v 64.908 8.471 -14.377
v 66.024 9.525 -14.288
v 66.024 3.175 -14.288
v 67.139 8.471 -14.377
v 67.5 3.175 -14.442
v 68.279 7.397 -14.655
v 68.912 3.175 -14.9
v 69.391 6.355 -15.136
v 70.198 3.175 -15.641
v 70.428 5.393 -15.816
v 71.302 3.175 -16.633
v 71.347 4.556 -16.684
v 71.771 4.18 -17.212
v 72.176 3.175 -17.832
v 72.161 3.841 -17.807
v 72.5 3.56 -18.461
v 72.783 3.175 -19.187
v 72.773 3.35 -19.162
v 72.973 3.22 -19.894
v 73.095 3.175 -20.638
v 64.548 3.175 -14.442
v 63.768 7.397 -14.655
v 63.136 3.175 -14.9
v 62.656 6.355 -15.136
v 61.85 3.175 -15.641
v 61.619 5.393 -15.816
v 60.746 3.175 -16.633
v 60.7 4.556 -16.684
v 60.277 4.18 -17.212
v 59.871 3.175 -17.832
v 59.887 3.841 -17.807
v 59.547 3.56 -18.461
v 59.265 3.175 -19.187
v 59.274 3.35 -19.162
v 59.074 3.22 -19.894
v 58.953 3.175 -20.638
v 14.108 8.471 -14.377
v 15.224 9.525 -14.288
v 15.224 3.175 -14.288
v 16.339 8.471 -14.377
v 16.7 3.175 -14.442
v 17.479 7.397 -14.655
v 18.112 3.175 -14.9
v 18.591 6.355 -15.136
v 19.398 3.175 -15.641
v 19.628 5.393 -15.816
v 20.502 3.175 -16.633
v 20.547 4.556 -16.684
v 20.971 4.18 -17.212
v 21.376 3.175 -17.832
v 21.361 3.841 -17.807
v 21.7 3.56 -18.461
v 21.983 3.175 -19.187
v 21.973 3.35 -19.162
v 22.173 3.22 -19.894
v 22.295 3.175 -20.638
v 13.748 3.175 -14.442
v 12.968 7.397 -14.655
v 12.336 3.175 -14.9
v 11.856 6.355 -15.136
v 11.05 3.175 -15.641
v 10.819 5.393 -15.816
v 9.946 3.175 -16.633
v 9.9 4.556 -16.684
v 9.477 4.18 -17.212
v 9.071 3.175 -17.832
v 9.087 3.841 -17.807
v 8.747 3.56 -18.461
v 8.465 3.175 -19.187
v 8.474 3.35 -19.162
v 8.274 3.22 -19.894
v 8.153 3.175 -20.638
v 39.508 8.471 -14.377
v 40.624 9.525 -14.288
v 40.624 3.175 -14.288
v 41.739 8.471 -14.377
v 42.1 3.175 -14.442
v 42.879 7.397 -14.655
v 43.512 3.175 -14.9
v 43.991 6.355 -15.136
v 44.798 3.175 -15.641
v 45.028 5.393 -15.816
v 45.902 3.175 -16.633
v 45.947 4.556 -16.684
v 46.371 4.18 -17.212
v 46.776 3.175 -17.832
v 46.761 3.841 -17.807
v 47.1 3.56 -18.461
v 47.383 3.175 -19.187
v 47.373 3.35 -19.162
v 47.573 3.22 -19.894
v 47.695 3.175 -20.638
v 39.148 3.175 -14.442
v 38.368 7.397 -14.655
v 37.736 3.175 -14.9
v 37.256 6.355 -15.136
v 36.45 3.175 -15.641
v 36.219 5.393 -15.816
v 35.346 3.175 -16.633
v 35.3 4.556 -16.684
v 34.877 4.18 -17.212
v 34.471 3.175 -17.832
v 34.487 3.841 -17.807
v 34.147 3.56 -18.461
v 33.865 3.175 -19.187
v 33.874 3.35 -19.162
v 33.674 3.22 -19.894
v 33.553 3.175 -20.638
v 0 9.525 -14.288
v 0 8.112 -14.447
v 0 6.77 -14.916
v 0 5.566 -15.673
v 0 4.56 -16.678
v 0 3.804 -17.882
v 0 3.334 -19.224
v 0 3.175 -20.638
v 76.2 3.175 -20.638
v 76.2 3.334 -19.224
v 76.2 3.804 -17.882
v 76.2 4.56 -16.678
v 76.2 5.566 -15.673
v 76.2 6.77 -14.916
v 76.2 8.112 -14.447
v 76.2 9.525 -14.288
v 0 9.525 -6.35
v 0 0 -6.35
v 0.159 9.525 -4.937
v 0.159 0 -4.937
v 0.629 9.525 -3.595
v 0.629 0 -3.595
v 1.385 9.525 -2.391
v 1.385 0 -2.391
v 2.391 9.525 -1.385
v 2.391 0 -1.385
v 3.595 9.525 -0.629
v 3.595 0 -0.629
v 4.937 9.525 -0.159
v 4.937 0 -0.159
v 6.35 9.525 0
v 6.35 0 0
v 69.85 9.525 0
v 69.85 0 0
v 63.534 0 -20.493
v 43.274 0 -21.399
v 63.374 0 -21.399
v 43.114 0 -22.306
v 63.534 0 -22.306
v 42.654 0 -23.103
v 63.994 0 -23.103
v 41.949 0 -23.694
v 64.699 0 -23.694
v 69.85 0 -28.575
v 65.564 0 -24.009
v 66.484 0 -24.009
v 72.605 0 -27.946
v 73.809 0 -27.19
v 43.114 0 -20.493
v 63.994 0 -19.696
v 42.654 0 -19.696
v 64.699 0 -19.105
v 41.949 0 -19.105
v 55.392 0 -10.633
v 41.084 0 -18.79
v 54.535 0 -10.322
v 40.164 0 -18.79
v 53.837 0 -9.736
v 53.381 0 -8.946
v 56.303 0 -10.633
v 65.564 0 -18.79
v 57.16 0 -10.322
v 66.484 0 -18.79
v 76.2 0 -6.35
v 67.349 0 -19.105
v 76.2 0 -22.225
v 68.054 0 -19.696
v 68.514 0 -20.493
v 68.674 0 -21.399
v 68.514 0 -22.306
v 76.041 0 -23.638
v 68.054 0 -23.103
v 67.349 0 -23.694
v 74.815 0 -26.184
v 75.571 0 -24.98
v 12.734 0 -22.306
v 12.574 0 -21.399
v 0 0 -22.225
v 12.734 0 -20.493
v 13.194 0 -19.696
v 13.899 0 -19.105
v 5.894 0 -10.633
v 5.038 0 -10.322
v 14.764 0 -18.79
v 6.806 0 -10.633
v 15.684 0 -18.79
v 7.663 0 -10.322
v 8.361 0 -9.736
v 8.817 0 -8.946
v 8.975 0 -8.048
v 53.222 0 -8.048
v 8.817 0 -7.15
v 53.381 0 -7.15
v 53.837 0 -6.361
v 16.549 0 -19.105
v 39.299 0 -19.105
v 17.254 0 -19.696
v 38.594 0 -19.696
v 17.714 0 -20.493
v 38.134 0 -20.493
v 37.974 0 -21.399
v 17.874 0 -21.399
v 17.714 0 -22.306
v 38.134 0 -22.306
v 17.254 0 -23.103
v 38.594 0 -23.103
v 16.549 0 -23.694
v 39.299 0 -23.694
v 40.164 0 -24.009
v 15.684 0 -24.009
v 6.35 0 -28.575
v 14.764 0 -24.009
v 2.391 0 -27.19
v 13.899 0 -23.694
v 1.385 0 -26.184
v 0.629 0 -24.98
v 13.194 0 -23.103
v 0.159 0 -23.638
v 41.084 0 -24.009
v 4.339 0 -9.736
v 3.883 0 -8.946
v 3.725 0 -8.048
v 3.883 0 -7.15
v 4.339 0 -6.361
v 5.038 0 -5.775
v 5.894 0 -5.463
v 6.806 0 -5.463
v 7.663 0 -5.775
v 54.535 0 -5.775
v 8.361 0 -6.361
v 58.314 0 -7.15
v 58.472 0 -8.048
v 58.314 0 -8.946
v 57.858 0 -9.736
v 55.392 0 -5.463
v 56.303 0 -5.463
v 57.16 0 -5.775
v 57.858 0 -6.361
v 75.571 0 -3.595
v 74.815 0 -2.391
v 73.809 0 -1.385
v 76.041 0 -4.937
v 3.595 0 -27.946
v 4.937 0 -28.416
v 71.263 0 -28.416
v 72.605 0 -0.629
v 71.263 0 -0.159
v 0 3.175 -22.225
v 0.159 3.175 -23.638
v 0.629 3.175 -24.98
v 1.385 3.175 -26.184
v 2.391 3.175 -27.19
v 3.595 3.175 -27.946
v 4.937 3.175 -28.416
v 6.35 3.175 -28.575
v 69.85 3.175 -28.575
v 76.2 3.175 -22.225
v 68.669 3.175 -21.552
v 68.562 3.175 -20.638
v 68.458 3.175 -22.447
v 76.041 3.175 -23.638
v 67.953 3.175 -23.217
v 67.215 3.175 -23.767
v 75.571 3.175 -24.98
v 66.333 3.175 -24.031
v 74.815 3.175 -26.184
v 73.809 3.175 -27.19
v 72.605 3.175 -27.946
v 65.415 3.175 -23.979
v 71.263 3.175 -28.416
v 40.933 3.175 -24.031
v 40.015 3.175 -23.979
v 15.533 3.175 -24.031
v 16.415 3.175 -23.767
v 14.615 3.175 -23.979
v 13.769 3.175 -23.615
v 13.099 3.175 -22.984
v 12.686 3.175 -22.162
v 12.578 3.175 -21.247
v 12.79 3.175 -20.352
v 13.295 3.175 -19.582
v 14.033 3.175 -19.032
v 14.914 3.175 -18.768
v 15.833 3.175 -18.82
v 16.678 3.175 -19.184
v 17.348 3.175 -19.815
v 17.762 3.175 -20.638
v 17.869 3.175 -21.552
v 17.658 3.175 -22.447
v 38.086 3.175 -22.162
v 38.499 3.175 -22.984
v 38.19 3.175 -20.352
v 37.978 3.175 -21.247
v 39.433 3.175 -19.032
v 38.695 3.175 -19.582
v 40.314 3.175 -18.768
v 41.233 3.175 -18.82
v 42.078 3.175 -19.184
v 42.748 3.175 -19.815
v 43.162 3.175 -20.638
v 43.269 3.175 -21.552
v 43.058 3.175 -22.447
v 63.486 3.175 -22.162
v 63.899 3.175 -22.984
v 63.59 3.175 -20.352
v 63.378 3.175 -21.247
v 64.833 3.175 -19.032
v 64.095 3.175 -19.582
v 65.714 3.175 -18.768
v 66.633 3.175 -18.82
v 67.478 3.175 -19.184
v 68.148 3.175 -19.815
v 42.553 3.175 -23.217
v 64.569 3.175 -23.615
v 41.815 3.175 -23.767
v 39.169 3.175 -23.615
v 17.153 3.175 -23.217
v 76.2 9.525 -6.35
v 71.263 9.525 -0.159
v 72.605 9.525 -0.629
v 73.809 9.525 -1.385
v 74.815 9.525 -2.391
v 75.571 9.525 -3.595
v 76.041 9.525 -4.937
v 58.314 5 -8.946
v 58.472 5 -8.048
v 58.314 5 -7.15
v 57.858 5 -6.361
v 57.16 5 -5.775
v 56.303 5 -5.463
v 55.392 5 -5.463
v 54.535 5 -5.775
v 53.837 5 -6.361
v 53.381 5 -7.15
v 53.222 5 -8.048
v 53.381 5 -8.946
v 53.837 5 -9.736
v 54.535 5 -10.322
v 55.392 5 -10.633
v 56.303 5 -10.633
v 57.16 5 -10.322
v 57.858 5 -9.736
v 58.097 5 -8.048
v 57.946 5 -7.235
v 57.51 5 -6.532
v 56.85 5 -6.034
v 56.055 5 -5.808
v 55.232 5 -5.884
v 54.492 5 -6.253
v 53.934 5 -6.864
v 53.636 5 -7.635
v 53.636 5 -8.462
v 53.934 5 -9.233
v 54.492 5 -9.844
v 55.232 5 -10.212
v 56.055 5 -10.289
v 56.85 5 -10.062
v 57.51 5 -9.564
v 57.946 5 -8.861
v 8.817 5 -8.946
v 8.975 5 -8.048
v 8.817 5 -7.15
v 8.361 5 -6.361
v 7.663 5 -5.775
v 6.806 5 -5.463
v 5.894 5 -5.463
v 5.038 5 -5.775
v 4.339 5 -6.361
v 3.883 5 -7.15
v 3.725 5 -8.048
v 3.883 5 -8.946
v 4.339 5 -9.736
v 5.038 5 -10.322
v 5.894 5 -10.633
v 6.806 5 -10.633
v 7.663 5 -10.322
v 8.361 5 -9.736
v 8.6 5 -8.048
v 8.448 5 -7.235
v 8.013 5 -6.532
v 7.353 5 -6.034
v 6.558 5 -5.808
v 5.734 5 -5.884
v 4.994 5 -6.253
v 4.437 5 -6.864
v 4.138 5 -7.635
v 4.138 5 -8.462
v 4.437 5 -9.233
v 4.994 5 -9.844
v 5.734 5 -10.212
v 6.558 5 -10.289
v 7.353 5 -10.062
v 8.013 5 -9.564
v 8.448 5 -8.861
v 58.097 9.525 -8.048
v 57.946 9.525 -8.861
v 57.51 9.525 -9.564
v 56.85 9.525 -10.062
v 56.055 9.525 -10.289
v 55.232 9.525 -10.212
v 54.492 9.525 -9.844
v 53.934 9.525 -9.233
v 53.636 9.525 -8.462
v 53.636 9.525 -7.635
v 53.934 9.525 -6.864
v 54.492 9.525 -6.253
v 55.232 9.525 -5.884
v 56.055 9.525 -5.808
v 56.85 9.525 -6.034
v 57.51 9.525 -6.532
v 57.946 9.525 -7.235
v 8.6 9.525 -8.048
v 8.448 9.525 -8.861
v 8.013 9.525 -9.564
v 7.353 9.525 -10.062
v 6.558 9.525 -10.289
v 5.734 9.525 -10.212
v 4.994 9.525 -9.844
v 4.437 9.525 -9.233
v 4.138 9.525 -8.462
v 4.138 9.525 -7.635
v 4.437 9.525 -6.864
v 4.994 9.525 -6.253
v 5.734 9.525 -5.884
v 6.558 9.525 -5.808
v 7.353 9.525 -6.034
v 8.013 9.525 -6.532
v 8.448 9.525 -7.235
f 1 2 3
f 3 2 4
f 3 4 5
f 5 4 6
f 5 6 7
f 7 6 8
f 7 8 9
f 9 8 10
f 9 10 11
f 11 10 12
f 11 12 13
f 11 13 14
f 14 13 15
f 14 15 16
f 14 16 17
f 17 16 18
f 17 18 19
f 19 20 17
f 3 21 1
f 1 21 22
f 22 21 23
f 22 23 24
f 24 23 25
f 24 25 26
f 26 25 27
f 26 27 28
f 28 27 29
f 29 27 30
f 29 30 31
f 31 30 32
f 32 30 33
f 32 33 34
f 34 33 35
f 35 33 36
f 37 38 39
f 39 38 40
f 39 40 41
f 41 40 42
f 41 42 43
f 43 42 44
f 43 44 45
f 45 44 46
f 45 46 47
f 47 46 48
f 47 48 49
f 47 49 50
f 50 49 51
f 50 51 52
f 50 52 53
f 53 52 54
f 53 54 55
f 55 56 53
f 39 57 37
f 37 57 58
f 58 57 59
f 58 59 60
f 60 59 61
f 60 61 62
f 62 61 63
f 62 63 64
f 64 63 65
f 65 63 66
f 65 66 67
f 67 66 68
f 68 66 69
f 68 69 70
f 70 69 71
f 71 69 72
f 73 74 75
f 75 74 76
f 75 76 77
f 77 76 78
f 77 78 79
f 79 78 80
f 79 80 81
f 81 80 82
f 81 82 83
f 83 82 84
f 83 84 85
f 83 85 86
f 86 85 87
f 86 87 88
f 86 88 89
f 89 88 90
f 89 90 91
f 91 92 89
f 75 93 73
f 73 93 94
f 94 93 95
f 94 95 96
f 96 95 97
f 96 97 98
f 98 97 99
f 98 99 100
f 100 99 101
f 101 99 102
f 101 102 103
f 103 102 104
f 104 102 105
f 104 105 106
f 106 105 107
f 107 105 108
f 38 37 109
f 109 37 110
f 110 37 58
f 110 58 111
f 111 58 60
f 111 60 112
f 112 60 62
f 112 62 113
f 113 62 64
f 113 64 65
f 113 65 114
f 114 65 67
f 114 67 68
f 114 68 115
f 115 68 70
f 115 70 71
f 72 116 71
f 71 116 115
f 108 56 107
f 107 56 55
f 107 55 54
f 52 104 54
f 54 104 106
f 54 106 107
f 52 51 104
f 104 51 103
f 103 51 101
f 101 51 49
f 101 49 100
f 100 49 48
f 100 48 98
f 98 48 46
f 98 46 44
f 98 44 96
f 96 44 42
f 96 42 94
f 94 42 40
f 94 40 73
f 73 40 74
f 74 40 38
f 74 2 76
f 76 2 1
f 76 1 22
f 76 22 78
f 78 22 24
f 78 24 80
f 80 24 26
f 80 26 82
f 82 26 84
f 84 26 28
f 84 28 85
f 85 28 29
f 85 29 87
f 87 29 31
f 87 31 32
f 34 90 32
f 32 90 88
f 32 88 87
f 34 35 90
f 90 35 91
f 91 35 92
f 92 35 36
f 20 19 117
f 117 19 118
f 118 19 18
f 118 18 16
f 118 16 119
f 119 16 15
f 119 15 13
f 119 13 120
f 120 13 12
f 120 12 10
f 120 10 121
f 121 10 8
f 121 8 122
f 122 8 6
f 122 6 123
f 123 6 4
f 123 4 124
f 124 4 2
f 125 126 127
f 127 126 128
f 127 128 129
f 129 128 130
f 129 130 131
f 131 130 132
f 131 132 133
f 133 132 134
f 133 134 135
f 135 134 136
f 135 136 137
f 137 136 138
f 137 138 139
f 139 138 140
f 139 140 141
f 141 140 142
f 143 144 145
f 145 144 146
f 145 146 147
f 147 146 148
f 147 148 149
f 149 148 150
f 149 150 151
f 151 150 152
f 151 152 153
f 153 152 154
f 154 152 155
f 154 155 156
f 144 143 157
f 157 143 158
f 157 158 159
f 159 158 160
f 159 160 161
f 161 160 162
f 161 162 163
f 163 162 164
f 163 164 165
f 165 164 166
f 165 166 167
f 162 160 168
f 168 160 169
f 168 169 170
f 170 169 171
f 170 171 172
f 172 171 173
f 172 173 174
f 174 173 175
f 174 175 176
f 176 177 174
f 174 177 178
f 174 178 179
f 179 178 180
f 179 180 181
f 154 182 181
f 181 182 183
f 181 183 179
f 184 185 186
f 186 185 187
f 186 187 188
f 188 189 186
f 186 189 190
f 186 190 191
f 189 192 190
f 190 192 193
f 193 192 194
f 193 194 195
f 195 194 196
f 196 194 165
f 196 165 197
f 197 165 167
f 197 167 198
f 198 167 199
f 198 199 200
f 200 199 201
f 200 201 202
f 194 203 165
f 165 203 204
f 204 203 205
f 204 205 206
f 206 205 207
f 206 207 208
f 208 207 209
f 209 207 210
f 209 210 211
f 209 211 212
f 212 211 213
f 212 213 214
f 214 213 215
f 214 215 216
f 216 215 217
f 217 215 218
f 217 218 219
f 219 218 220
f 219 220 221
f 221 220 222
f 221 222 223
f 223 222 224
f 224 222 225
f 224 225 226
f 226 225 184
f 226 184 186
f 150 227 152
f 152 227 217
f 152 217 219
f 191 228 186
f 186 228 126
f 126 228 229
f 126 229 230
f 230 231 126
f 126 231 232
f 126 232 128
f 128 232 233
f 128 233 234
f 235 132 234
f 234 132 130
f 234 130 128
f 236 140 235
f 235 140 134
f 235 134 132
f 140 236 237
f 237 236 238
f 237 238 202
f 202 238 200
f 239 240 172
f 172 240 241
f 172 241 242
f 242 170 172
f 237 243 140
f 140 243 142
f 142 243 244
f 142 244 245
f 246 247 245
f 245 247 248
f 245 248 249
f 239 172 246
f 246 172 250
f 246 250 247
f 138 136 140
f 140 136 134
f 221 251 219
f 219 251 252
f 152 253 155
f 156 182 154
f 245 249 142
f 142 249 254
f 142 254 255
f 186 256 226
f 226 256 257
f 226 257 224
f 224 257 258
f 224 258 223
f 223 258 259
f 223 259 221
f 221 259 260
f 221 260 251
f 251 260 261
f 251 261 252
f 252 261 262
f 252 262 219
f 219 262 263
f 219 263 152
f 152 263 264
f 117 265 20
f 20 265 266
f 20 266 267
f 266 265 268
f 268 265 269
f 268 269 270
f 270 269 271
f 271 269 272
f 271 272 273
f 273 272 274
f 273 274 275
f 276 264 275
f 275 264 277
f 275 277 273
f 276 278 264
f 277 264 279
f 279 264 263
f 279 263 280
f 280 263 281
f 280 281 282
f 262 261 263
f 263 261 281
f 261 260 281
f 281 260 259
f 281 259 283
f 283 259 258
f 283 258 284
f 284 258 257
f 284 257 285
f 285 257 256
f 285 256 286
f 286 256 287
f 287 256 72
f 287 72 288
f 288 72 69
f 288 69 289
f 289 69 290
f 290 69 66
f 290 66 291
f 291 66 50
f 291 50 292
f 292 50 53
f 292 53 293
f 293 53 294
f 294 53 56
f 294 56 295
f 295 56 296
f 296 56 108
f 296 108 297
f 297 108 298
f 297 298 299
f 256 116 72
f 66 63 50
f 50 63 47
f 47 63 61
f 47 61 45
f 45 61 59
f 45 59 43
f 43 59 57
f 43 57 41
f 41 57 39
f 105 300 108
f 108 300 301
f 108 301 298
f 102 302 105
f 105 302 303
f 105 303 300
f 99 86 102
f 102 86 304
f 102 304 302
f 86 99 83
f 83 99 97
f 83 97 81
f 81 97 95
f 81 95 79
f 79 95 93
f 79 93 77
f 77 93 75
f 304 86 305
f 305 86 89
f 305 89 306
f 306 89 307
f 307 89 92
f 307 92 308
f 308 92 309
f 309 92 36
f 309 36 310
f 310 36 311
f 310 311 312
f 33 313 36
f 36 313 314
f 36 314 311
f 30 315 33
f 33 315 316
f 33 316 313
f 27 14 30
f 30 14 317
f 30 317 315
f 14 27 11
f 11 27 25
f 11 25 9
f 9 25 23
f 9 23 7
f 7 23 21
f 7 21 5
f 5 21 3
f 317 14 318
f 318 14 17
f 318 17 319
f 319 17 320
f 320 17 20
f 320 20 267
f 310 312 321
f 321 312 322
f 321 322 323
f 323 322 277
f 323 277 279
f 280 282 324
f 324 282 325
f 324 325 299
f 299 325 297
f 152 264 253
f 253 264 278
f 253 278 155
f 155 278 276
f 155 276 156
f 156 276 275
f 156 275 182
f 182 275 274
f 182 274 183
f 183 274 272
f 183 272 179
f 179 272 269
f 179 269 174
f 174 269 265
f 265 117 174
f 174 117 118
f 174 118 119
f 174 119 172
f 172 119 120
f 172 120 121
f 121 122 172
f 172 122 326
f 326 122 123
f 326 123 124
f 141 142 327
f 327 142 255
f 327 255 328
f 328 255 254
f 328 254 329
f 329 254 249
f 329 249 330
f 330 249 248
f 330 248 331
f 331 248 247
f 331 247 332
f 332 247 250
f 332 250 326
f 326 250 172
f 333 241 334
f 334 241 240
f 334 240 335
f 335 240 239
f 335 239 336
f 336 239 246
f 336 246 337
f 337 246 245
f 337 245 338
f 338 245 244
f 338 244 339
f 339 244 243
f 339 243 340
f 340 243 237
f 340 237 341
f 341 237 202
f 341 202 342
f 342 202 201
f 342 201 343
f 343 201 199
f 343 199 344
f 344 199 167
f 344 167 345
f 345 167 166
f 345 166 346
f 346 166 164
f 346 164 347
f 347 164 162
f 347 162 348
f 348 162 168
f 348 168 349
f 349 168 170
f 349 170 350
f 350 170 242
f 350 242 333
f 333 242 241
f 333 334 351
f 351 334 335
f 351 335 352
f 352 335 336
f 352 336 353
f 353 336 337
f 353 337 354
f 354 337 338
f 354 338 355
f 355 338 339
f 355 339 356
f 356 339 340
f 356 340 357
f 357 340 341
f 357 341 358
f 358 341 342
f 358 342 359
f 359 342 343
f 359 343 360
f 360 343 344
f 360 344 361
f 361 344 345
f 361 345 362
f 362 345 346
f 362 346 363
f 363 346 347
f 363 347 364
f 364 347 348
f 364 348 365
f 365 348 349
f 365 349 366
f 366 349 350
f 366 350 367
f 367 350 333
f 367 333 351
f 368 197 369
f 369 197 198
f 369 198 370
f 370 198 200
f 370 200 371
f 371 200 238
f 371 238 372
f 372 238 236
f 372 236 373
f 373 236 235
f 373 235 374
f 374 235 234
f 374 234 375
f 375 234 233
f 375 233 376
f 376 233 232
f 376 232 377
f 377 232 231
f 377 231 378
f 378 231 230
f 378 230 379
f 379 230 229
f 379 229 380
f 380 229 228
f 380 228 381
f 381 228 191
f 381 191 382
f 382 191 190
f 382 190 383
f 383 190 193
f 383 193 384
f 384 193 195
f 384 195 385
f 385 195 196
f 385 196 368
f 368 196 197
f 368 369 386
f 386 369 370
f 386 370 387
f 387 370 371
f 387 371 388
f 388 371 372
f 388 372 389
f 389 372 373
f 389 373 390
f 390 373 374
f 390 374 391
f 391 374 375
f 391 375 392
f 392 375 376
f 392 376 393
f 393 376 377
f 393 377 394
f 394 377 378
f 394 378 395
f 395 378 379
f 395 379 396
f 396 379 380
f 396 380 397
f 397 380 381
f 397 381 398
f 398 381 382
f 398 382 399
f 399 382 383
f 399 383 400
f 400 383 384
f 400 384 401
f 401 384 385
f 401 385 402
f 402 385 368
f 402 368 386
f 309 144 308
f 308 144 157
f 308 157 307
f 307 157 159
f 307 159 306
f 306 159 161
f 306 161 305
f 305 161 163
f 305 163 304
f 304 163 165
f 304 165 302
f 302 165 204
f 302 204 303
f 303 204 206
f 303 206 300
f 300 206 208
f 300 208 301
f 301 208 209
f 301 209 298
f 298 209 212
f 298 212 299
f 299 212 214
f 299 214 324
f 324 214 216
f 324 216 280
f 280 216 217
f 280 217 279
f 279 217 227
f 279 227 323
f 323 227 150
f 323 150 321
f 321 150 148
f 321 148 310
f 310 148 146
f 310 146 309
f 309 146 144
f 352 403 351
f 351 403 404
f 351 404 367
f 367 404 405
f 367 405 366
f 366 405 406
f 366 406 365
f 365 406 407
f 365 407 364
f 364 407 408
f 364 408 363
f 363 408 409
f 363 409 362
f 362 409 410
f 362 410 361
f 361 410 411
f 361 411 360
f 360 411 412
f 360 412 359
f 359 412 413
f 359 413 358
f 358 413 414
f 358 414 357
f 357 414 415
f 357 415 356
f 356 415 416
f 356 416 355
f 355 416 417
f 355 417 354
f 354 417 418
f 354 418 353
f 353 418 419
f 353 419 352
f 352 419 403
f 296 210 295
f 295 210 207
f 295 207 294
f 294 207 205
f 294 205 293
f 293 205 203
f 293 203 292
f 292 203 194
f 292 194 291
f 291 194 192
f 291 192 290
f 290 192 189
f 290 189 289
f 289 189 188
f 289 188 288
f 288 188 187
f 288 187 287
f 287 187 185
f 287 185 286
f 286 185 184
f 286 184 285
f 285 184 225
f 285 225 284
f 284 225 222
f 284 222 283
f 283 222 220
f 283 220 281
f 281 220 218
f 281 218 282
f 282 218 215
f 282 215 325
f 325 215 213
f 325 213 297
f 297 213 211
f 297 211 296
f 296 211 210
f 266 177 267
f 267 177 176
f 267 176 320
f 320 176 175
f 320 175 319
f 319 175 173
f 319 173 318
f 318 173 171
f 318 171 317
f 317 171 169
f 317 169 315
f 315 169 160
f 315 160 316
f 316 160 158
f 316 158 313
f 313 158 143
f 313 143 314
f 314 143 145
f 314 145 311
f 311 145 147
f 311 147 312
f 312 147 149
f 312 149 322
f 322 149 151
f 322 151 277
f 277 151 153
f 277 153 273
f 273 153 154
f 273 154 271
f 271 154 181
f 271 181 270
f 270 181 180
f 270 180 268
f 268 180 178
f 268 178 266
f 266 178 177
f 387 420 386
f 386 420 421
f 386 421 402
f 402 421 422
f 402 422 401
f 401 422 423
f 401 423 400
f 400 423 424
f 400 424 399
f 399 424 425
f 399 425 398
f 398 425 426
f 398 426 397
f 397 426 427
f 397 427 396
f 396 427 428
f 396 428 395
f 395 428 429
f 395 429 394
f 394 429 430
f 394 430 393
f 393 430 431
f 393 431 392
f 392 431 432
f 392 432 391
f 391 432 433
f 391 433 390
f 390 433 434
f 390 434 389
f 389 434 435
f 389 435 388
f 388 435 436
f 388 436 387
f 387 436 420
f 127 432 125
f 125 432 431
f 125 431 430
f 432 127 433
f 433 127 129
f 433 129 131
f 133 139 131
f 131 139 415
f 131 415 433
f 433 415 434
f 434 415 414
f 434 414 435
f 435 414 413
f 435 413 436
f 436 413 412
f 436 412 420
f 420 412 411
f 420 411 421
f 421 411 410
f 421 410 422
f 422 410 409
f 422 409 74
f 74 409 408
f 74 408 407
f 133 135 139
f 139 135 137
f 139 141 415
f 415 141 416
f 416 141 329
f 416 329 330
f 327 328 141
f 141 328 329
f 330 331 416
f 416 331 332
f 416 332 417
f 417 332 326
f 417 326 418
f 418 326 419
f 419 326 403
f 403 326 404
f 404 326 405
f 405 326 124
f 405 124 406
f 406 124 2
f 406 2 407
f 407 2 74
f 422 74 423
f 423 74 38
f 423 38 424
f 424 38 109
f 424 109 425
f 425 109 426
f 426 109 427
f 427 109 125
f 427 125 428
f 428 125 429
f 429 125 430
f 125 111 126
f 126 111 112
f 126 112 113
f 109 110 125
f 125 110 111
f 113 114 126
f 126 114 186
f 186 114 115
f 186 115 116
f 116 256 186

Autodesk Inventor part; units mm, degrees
ref_plane "YZ Plane" through (0, 0, 0) normal (1, 0, 0) x (0, 1, 0)
ref_plane "XZ Plane" through (0, 0, 0) normal (0, 1, 0) x (-1, 0, 0)
ref_plane "XY Plane" through (0, 0, 0) normal (0, 0, 1) x (1, 0, 0)
sketch "Sketch1" plane through (0, 0, 0) normal (1, 0, 0) x (0, 1, 0)
  line L0 (0, 0) -> (0, -28.575)
  line L1 (0, -28.575) -> (3.175, -28.575)
  line L2 (3.175, -28.575) -> (3.175, -14.2875)
  line L3 (3.175, -14.2875) -> (9.525, -14.2875)
  line L4 (9.525, -14.2875) -> (9.525, 0)
  line L5 (9.525, 0) -> (0, 0)
  point P0 (0, -14.2875)
  dimension "d0" = 3.175
  dimension "d1" = 9.525
  dimension "d2" = 28.575
extrude "Extrusion1" add sketch "Sketch1" along normal blind 76.2
sketch "Sketch2" plane through (0, 9.525, 0) normal (0, 1, 0) x (1, 0, 0)
  circle A0 centre (15.2237, 21.3995) radius 2.65
  circle A1 centre (40.6237, 21.3995) radius 2.65
  circle A2 centre (66.0237, 21.3995) radius 2.65
  circle A3 centre (55.8475, 8.0482) radius 2.25
  circle A4 centre (6.35, 8.0482) radius 2.25
  line L0 (0, 28.575) -> (0, 14.2875) projected
  line L1 (0, 14.2875) -> (0, 0) projected
  line L2 (0, 14.2875) -> (76.2, 14.2875) projected
  point P0 (0, 21.4313)
  point P1 (0, 7.1438)
  dimension "d5" = 5.3
  dimension "d6" = 25.4
  dimension "d7" = 25.4
  dimension "d8" = 49.4975
  dimension "d9" = 4.5
  dimension "d10" = 13.3513
  dimension "d11" = 8.8737
  dimension "d13" = 7.112
  dimension "d14" = 6.35
extrude "Extrusion2" cut sketch "Sketch2" against normal through all
sketch "Sketch3" plane through (0, 0, -28.575) normal (0, -1, 0) x (1, 0, 0)
  circle A0 centre (55.8475, 20.5268) radius 2.25 projected
  circle A1 centre (55.8475, 20.5268) radius 2.625
  circle A2 centre (6.35, 20.5268) radius 2.25 projected
  circle A3 centre (6.35, 20.5268) radius 2.625
  point P0 (0, 28.575)
  dimension "d17" = 5.25
  dimension "d18" = 5.25
extrude "Extrusion3" cut sketch "Sketch3" against normal blind 5
fillet "Fillet1" radius 6.35 5 edges at (76.2, 4.7625, 0) (38.1, 3.175, -14.2875) (76.2, 1.5875, -28.575) (0, 1.5875, -28.575) (0, 4.7625, 0)
sketch "Sketch4" plane through (0, 9.525, -6.35) normal (0, 1, 0) x (1, 0, 0)
  arc A0 (6.35, 22.225) -> (0, 15.875) centre (6.35, 15.875) ccw projected
  line L0 (0, 15.875) -> (0, 14.2875) projected
  line L1 (12.6857, 14.2875) -> (0, 14.2875) projected
  arc A1 (17.7618, 14.2875) -> (12.6857, 14.2875) centre (15.2237, 15.0495) ccw projected
  line L2 (38.0857, 14.2875) -> (17.7618, 14.2875) projected
  arc A2 (43.1618, 14.2875) -> (38.0857, 14.2875) centre (40.6237, 15.0495) ccw projected
  line L3 (63.4857, 14.2875) -> (43.1618, 14.2875) projected
  arc A3 (68.5618, 14.2875) -> (63.4857, 14.2875) centre (66.0237, 15.0495) ccw projected
  line L4 (76.2, 14.2875) -> (68.5618, 14.2875) projected
  line L5 (76.2, 15.875) -> (76.2, 14.2875) projected
  arc A4 (76.2, 15.875) -> (69.85, 22.225) centre (69.85, 15.875) ccw projected
  line L6 (6.35, 22.225) -> (69.85, 22.225) projected
  circle A5 centre (15.2237, 15.0495) radius 7.112
  circle A6 centre (40.6237, 15.0495) radius 7.112
  circle A7 centre (66.0237, 15.0495) radius 7.112
  point P0 (0, -6.35)
  dimension "d22" = 14.224
  dimension "d23" = 14.224
  dimension "d24" = 14.224
extrude "Extrusion4" cut sketch "Sketch4" against normal up to surface (6.35 mm away) contours A5 L2 A1 L1 | L1 A1 L2 A5 | A7 L3 A3 L4 | L4 A3 L3 A7 | A6 L3 A2 L2 | L2 A2 L3 A6
equation "\"d7\" = d6"
properties part number "DriveMotorMount5"
